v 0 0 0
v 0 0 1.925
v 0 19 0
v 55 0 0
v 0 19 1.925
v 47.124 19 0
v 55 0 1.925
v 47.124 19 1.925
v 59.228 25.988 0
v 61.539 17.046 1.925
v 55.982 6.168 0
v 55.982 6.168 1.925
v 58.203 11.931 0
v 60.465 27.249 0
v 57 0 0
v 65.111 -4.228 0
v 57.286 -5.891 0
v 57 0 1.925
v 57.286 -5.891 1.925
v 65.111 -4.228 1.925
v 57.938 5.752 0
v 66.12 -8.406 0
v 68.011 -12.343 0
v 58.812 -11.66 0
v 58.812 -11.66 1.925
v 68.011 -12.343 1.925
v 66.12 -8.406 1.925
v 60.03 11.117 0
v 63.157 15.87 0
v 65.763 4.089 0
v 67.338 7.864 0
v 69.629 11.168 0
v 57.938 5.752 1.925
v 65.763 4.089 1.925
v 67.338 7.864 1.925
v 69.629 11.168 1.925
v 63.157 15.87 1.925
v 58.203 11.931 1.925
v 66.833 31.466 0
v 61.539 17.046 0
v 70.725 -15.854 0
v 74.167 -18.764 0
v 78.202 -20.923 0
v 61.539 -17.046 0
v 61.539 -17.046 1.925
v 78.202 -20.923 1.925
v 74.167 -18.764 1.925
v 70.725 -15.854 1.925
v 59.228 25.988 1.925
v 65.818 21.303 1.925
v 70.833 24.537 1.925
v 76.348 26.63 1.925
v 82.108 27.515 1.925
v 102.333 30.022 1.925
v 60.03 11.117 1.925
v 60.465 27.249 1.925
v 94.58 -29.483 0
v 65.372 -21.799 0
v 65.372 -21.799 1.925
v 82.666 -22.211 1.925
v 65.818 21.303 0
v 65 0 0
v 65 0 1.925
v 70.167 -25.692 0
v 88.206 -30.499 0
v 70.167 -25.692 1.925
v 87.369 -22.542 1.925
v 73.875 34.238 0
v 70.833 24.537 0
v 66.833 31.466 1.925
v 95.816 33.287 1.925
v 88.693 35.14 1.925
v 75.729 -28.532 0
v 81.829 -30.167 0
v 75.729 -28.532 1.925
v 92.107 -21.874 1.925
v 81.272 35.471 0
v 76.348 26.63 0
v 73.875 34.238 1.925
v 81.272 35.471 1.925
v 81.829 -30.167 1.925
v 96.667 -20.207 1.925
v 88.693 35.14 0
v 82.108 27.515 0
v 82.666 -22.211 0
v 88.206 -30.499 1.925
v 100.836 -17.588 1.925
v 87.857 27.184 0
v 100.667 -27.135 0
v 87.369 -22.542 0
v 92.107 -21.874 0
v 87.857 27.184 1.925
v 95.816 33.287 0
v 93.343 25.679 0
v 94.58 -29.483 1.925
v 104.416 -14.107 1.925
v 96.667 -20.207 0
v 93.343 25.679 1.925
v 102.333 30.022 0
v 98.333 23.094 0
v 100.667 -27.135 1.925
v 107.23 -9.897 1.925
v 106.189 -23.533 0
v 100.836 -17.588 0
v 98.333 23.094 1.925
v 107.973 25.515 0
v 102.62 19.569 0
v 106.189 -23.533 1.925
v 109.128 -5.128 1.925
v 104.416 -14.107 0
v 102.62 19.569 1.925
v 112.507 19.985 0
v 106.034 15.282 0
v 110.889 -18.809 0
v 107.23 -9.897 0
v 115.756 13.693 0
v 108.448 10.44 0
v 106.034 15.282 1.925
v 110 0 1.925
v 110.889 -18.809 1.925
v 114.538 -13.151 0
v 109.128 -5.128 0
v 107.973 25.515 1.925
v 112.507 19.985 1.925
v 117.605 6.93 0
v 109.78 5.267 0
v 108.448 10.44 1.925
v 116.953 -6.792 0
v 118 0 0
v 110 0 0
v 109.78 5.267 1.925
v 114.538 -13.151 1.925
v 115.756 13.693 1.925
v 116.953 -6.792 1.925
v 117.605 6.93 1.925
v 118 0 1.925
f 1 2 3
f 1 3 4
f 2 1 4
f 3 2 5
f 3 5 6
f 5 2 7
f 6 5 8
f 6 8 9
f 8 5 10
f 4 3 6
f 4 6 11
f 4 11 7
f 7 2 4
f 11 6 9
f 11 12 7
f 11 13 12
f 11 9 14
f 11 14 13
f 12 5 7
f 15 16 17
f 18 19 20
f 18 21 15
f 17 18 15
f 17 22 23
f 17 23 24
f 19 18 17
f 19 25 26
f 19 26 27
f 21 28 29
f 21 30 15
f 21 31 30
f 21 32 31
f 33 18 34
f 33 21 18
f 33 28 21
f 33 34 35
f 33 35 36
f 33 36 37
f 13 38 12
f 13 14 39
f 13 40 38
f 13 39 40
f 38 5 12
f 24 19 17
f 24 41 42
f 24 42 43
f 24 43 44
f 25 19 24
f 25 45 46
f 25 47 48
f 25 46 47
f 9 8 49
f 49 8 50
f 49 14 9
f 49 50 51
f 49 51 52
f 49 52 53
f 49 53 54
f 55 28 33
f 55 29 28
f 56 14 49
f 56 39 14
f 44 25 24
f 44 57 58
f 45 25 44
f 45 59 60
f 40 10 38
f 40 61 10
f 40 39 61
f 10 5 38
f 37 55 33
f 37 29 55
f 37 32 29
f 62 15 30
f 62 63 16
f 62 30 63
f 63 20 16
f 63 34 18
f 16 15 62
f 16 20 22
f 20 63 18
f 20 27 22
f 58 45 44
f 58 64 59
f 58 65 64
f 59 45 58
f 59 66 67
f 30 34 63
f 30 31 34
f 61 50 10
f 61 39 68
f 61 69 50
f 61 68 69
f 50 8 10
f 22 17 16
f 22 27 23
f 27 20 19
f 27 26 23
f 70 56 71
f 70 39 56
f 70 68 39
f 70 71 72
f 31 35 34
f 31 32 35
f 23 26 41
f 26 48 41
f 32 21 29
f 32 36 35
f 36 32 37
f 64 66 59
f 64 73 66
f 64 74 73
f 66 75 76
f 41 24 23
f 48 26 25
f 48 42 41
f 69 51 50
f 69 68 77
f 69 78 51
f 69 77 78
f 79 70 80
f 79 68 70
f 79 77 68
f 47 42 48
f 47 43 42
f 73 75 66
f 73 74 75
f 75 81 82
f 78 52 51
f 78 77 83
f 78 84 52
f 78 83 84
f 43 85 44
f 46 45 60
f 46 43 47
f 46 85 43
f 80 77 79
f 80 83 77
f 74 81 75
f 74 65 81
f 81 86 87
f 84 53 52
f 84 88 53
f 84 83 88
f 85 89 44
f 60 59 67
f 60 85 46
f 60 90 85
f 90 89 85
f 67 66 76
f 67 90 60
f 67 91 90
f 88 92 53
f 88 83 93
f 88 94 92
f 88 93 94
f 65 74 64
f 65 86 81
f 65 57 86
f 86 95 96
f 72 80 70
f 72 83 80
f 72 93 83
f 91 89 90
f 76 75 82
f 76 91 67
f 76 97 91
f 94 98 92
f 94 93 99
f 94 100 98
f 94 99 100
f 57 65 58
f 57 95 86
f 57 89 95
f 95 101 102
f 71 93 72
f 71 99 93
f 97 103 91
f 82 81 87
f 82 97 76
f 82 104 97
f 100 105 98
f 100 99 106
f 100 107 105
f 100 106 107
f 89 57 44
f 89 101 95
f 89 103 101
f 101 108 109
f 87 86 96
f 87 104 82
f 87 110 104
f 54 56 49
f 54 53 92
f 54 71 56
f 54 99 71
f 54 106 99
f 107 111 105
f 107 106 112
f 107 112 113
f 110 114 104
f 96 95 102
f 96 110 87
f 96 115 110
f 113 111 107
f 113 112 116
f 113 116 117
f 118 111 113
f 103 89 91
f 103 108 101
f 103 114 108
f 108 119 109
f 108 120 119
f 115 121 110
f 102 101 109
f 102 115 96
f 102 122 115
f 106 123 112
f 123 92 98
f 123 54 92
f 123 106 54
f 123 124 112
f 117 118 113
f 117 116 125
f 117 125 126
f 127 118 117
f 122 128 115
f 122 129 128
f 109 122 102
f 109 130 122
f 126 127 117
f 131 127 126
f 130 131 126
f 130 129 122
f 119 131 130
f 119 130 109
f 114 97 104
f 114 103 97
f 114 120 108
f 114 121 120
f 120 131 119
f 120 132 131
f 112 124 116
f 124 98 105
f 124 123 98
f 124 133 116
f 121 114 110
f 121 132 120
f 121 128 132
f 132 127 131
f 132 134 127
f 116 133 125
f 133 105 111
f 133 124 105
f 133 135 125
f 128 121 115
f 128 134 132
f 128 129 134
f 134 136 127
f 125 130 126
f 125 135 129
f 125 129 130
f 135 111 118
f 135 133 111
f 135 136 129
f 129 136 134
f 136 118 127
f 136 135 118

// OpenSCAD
// file: archimedean_spiral.scad
// spirals   = how many spirals
// thickness = how thick you want the arms to be
// rmax      = maximum radius
module archimedean_spiral(spirals=1, thickness=1, rmax = 100){
    s = spirals*360;
    t = thickness;
    a = sqrt(pow(rmax,2)/(pow(s,2)*(pow(cos(s),2) + pow(sin(s),2))));
    points=[
        for(i = [0:$fa:s]) [
            (i*a)*cos(i),
            (i*a)*sin(i)
        ]
    ];
    points_inner=[
        for(i = [s:-$fa:0]) [
            (((i*a)+t)*cos(i)),
            (((i*a)+t)*sin(i))
        ]
    ];
    polygon(concat(points,points_inner));
}

archimedean_spiral(spirals=3, thickness=2, rmax=10);
// main file
use <archimedean_spiral.scad>

layer=0.175;
wall=floor(2/layer)*layer;
cant=9;
loop_id=30;
loops=3;
loops_r=1.1;
c_width=19;
c_length=46;  // 46, 69

$fn=100;

union() {
  cube([c_length+cant,c_width,wall]);
  translate([c_length+cant+loop_id,0]) ring();
  translate([c_length+cant-4,c_width-7]) rotate(30) cube([15,8,wall]);
}

module ring() {
  linear_extrude(wall) rotate(180)
    difference() {
      archimedean_spiral(spirals=loops,        thickness=8,rmax=loop_id);
      archimedean_spiral(spirals=loops-loops_r,thickness=8,rmax=loop_id/loops*(loops-loops_r));
    }
}
